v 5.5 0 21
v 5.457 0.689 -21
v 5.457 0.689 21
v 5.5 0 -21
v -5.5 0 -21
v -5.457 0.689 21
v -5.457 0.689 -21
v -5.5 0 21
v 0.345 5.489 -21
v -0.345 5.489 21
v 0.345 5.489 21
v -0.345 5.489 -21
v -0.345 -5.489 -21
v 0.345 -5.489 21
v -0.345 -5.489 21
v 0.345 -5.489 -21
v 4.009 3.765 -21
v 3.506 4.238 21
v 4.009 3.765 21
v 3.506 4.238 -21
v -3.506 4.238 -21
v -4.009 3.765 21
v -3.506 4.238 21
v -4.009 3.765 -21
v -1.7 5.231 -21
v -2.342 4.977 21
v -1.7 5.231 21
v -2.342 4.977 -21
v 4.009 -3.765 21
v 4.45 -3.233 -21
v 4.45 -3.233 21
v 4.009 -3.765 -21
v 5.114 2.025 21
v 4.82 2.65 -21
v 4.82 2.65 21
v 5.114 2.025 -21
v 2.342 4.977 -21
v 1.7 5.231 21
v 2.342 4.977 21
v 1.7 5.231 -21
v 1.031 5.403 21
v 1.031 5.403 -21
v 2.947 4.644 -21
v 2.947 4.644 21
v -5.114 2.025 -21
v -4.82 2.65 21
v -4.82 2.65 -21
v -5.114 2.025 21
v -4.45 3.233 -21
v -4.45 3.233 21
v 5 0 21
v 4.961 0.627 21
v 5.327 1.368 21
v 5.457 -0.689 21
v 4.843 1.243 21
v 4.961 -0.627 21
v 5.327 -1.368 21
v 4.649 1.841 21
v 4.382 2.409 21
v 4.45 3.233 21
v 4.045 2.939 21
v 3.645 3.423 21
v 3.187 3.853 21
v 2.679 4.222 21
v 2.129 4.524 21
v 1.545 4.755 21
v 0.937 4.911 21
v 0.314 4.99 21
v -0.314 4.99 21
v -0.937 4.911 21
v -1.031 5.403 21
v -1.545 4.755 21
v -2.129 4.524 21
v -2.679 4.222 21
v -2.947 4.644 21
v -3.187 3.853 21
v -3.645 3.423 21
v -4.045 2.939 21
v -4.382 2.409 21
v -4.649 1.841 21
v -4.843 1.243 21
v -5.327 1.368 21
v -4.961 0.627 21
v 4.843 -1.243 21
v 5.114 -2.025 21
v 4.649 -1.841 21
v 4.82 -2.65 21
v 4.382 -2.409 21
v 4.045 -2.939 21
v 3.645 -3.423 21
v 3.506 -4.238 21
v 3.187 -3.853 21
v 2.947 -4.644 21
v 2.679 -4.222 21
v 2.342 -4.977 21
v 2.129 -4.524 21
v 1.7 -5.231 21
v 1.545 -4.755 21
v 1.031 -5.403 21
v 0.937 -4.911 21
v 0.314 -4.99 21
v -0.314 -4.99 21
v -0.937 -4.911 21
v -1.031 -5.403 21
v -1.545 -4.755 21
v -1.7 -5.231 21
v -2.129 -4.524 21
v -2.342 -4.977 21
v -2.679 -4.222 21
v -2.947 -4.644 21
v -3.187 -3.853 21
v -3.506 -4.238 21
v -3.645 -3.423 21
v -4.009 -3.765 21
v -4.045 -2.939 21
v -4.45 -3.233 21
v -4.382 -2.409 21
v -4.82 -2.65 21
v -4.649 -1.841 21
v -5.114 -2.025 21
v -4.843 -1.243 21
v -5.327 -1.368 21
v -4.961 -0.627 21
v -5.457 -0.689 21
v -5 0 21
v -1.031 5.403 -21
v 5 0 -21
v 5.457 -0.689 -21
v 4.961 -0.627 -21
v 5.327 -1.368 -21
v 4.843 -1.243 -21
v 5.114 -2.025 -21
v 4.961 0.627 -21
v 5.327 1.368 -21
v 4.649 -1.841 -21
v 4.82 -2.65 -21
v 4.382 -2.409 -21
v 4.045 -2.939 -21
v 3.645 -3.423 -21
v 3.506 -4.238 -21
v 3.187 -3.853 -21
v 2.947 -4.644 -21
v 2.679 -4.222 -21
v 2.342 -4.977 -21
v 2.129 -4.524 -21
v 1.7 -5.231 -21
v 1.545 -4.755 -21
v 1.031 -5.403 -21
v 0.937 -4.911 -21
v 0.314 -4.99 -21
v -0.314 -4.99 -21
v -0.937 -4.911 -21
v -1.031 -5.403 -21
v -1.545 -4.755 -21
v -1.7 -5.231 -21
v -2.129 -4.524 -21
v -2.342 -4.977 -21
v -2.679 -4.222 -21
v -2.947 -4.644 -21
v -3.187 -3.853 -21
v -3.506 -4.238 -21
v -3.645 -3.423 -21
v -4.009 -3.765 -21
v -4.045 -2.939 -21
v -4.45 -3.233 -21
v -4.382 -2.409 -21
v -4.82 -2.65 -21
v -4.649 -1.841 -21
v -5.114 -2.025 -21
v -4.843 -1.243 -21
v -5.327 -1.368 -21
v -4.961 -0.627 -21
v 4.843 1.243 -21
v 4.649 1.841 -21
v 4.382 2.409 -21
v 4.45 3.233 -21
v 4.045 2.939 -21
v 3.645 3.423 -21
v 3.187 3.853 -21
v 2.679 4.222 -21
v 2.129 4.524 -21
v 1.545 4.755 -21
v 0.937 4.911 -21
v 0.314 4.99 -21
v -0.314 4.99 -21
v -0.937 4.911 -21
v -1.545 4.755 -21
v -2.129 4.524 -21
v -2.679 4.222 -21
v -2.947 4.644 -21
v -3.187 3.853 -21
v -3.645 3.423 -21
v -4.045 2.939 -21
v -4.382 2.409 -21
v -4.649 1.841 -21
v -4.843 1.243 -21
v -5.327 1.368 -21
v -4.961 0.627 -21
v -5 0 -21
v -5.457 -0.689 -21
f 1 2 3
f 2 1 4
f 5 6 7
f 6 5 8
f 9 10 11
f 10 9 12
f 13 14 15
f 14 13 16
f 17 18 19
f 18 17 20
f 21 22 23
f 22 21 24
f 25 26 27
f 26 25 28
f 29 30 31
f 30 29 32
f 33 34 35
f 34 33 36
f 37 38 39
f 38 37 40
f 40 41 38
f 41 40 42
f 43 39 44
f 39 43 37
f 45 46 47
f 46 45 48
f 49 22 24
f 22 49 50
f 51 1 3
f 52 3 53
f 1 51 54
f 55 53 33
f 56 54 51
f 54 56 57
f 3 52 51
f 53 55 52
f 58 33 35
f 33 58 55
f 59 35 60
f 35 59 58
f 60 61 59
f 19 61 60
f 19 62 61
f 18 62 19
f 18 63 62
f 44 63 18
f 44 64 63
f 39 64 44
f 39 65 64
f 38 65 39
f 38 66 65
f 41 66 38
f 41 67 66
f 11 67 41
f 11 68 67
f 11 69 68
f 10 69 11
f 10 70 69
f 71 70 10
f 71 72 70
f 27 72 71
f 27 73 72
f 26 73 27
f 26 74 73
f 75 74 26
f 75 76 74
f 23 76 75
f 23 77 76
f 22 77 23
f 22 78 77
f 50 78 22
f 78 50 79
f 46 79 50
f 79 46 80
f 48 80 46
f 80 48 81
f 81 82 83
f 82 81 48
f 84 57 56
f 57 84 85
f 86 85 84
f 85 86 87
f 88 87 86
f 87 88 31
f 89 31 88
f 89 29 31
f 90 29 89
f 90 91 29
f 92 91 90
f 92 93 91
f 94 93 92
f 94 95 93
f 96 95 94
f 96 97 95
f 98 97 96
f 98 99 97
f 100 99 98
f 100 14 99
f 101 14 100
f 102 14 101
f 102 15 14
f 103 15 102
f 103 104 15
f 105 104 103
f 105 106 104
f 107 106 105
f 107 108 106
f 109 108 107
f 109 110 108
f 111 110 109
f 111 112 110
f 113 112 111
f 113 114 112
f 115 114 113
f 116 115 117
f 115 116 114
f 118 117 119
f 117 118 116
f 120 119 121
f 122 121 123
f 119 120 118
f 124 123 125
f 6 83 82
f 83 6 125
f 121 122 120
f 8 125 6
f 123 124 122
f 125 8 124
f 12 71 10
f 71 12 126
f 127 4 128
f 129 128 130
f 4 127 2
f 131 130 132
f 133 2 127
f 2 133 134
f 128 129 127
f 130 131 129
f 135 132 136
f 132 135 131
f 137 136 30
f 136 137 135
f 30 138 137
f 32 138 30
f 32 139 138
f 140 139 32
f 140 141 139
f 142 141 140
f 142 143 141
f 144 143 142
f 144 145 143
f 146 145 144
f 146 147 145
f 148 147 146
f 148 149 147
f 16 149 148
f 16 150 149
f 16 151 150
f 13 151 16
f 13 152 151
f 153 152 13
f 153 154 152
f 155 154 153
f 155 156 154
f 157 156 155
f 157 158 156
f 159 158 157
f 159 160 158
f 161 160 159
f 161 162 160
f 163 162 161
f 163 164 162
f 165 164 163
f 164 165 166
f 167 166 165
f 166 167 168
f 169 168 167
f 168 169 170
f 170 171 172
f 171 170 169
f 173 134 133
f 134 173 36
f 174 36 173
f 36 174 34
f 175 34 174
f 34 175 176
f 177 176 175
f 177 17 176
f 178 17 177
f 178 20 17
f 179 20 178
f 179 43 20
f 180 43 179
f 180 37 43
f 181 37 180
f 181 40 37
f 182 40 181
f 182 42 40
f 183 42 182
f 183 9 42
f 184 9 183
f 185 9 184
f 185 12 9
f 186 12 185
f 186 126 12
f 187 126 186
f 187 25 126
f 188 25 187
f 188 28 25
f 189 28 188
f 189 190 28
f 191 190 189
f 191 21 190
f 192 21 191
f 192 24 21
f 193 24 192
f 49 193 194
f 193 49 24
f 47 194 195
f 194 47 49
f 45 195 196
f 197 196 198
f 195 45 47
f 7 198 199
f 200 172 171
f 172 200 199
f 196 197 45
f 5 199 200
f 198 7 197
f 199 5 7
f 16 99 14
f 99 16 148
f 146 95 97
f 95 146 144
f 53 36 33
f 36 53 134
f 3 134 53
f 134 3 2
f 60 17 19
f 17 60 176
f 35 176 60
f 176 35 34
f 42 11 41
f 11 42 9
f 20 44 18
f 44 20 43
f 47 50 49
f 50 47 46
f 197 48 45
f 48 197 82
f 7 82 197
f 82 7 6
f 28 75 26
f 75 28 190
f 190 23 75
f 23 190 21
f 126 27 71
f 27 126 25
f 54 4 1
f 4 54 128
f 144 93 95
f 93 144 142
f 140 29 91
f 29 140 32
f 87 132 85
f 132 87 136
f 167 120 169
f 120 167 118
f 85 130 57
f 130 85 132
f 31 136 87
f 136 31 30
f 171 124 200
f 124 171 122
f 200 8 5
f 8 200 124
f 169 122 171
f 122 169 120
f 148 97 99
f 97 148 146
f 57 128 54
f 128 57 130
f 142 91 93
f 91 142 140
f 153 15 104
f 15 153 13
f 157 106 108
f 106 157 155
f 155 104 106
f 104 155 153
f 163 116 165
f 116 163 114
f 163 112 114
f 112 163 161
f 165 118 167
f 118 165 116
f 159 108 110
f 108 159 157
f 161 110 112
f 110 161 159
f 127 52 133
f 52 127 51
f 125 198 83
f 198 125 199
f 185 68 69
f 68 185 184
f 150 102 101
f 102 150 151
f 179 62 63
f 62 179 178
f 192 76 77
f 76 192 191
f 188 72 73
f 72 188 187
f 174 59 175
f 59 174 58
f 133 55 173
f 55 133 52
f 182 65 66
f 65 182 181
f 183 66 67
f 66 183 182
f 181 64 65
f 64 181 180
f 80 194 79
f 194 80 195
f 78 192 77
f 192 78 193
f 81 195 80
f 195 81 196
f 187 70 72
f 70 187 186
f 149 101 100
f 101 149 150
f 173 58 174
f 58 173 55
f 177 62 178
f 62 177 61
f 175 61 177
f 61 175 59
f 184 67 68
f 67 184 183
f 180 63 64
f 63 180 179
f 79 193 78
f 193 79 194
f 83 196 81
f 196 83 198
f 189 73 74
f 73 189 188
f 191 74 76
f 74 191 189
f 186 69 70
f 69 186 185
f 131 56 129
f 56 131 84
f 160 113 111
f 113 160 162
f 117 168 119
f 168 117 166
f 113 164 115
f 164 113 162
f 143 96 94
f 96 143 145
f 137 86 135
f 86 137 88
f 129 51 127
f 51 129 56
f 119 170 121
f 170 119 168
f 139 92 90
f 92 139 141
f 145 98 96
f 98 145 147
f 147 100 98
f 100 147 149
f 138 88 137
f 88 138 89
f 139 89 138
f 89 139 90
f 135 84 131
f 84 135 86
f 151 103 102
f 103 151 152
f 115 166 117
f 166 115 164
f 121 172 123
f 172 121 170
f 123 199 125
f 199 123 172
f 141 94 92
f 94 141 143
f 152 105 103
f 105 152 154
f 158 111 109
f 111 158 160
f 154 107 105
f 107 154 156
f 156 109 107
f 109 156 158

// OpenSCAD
$fn = 50;


difference() {
	union() {
		translate(v = [0, 0, -21.0000000000]) {
			cylinder(h = 42, r = 5.5000000000);
		}
	}
	union() {
		translate(v = [0, 0, -100.0000000000]) {
			cylinder(h = 200, r = 5);
		}
	}
}
